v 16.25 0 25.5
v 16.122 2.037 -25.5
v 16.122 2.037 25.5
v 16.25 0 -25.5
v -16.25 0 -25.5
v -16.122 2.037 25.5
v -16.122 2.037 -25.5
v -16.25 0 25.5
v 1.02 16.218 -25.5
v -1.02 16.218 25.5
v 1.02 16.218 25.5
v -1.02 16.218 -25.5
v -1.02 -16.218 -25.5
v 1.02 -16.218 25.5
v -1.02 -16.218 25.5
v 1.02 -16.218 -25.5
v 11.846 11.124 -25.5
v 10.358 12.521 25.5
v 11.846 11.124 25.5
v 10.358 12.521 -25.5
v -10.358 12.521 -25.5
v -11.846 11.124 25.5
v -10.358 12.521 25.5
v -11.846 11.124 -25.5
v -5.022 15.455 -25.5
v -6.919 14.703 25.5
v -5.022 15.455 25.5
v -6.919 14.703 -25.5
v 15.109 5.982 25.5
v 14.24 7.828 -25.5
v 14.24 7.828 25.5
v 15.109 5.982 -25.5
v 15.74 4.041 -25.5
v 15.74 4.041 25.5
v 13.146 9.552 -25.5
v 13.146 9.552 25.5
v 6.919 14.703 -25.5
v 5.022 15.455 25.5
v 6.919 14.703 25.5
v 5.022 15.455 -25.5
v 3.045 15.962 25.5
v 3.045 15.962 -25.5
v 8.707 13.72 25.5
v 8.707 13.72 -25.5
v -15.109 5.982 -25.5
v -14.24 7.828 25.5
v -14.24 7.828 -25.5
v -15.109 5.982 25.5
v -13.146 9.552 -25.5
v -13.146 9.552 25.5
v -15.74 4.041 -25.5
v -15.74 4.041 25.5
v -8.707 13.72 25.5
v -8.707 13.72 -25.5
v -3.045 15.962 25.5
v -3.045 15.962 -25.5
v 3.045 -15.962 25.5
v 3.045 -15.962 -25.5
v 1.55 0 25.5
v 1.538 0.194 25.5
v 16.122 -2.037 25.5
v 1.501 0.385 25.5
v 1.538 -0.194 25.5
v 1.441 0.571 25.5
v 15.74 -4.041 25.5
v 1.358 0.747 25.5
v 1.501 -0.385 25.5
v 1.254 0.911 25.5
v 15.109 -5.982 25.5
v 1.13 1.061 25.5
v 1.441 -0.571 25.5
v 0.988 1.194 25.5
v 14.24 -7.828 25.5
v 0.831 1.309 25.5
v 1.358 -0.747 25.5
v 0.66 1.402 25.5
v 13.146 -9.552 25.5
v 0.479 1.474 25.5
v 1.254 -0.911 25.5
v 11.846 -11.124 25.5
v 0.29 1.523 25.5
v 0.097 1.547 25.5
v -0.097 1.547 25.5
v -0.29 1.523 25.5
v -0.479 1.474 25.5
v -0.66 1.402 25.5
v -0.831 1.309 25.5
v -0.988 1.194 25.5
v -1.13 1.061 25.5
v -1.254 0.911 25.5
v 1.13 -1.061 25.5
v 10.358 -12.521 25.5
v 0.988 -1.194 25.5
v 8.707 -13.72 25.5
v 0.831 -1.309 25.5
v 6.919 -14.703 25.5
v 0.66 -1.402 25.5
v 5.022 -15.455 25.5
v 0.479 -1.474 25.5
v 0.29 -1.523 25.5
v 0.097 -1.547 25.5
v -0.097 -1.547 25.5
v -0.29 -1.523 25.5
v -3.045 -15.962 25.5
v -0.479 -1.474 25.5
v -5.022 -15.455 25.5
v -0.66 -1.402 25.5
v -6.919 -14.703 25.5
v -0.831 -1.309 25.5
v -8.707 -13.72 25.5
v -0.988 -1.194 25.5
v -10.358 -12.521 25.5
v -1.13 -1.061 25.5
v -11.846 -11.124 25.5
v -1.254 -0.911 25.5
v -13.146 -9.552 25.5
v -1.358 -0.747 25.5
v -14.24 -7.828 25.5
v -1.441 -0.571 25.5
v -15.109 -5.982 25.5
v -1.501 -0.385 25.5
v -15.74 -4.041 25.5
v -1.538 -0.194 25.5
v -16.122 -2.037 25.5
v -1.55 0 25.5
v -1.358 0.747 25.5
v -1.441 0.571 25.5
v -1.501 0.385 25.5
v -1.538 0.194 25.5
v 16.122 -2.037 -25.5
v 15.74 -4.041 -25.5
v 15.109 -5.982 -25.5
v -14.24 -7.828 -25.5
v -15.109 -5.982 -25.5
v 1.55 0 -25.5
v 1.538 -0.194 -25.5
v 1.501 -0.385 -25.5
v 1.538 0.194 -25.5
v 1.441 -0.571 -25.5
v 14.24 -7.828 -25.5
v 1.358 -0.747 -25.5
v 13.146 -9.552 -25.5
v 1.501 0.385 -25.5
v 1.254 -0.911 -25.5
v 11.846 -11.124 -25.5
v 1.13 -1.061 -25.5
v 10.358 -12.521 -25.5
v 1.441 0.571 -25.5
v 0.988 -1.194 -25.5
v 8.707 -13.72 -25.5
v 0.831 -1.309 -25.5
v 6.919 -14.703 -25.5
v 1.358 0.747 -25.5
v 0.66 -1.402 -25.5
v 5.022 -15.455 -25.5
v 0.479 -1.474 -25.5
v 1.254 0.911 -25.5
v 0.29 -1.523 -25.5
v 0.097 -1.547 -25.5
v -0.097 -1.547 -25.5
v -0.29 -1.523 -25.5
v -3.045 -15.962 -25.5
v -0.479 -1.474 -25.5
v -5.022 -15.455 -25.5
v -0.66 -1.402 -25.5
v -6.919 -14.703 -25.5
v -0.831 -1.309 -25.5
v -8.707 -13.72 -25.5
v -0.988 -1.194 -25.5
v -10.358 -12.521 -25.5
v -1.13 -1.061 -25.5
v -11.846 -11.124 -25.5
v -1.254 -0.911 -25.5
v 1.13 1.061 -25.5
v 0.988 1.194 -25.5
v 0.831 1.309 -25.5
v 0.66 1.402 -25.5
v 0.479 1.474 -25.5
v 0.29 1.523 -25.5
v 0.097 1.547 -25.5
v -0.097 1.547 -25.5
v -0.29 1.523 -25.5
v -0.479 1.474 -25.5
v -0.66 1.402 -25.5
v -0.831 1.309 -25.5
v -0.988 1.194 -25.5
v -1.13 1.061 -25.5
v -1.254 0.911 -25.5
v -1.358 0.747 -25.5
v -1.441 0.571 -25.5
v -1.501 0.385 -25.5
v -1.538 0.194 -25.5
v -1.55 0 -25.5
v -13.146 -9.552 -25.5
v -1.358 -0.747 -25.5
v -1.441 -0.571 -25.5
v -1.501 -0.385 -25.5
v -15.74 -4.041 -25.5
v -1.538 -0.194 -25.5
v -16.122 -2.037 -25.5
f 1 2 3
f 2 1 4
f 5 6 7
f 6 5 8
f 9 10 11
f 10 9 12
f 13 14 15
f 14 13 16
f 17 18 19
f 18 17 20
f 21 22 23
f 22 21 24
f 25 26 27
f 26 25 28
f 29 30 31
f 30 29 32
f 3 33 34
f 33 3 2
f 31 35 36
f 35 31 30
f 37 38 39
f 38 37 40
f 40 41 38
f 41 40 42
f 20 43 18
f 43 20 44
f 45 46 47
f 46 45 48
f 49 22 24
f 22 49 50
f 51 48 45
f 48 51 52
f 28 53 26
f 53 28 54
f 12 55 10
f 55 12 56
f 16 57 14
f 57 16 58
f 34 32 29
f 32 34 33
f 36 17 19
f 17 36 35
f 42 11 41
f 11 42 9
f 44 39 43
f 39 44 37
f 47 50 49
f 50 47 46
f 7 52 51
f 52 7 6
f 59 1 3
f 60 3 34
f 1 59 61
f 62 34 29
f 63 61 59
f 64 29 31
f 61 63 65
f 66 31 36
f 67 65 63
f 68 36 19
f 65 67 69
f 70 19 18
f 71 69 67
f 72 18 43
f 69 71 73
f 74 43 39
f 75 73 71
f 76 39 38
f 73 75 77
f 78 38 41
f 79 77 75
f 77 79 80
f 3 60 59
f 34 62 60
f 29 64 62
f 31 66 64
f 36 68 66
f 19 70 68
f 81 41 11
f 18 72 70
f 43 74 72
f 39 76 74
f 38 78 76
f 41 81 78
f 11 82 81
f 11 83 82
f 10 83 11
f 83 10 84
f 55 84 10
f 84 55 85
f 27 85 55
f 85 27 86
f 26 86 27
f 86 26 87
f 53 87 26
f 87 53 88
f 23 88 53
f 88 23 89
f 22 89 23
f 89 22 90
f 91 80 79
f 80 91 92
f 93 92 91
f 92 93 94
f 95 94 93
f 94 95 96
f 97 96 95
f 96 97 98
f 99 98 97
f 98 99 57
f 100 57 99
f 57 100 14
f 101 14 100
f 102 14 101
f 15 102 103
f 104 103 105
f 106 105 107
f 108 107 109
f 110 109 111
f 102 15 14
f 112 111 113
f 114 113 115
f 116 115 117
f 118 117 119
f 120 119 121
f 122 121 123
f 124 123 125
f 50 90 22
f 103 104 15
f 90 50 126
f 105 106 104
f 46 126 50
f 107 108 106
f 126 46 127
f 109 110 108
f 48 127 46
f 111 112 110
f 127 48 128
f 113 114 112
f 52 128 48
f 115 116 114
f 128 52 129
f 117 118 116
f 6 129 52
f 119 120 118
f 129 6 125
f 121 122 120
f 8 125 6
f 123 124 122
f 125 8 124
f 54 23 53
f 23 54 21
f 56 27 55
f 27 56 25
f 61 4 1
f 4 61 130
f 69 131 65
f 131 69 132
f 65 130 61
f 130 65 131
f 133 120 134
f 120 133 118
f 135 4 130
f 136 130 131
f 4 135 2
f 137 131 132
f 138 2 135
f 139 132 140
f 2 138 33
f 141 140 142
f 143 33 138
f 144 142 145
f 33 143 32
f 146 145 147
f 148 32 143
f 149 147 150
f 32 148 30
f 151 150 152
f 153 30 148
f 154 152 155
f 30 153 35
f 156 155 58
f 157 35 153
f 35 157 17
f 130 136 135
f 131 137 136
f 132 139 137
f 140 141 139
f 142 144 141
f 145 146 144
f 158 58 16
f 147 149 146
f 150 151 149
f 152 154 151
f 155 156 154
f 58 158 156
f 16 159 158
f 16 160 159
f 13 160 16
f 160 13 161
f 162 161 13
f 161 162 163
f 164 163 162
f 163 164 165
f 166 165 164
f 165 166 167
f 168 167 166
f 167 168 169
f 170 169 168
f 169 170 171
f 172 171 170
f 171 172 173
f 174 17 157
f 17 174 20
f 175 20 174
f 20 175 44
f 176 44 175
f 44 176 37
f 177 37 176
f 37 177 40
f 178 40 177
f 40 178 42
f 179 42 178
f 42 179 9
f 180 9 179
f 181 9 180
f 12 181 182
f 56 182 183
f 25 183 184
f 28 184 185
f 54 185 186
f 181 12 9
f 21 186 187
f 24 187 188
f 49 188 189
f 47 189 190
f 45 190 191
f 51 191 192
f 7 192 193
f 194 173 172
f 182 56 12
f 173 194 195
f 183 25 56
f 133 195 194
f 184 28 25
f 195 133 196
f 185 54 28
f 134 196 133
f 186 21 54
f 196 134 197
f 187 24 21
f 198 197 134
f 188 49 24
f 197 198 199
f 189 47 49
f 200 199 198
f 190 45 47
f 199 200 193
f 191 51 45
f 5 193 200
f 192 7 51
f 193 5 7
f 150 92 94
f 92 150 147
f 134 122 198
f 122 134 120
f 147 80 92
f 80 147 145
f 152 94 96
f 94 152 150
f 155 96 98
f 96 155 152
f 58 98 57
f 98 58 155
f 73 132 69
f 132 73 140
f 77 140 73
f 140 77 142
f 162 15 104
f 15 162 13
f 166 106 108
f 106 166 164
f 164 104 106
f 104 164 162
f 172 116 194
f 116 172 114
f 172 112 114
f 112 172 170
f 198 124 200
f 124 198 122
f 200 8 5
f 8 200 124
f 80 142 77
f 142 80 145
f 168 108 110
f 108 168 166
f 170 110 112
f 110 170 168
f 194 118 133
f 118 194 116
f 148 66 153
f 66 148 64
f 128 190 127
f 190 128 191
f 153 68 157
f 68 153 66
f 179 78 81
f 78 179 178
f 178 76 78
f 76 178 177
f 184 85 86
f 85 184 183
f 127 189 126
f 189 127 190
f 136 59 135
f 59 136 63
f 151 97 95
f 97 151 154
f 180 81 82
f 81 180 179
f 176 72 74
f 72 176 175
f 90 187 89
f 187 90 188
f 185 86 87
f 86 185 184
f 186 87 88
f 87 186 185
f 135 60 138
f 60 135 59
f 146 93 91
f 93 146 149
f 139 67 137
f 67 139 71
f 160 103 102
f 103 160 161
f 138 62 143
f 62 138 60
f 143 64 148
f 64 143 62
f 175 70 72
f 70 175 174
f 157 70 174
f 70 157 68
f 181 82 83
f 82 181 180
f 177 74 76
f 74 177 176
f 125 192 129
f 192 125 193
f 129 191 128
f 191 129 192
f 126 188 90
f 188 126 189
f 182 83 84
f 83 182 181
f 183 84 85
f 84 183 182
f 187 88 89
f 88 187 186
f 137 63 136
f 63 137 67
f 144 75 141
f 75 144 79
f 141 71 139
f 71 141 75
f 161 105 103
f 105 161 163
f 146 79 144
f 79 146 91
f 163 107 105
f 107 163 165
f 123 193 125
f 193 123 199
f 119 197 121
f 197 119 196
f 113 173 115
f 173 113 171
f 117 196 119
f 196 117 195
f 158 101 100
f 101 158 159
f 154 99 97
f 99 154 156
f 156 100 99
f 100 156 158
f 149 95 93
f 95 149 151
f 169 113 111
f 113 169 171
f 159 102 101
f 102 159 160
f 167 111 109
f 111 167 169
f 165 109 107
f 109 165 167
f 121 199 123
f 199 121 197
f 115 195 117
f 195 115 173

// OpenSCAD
$fn = 50;


difference() {
	union() {
		translate(v = [0, 0, -25.5000000000]) {
			cylinder(h = 51, r = 16.2500000000);
		}
	}
	union() {
		translate(v = [0, 0, -100.0000000000]) {
			cylinder(h = 200, r = 1.5500000000);
		}
	}
}
